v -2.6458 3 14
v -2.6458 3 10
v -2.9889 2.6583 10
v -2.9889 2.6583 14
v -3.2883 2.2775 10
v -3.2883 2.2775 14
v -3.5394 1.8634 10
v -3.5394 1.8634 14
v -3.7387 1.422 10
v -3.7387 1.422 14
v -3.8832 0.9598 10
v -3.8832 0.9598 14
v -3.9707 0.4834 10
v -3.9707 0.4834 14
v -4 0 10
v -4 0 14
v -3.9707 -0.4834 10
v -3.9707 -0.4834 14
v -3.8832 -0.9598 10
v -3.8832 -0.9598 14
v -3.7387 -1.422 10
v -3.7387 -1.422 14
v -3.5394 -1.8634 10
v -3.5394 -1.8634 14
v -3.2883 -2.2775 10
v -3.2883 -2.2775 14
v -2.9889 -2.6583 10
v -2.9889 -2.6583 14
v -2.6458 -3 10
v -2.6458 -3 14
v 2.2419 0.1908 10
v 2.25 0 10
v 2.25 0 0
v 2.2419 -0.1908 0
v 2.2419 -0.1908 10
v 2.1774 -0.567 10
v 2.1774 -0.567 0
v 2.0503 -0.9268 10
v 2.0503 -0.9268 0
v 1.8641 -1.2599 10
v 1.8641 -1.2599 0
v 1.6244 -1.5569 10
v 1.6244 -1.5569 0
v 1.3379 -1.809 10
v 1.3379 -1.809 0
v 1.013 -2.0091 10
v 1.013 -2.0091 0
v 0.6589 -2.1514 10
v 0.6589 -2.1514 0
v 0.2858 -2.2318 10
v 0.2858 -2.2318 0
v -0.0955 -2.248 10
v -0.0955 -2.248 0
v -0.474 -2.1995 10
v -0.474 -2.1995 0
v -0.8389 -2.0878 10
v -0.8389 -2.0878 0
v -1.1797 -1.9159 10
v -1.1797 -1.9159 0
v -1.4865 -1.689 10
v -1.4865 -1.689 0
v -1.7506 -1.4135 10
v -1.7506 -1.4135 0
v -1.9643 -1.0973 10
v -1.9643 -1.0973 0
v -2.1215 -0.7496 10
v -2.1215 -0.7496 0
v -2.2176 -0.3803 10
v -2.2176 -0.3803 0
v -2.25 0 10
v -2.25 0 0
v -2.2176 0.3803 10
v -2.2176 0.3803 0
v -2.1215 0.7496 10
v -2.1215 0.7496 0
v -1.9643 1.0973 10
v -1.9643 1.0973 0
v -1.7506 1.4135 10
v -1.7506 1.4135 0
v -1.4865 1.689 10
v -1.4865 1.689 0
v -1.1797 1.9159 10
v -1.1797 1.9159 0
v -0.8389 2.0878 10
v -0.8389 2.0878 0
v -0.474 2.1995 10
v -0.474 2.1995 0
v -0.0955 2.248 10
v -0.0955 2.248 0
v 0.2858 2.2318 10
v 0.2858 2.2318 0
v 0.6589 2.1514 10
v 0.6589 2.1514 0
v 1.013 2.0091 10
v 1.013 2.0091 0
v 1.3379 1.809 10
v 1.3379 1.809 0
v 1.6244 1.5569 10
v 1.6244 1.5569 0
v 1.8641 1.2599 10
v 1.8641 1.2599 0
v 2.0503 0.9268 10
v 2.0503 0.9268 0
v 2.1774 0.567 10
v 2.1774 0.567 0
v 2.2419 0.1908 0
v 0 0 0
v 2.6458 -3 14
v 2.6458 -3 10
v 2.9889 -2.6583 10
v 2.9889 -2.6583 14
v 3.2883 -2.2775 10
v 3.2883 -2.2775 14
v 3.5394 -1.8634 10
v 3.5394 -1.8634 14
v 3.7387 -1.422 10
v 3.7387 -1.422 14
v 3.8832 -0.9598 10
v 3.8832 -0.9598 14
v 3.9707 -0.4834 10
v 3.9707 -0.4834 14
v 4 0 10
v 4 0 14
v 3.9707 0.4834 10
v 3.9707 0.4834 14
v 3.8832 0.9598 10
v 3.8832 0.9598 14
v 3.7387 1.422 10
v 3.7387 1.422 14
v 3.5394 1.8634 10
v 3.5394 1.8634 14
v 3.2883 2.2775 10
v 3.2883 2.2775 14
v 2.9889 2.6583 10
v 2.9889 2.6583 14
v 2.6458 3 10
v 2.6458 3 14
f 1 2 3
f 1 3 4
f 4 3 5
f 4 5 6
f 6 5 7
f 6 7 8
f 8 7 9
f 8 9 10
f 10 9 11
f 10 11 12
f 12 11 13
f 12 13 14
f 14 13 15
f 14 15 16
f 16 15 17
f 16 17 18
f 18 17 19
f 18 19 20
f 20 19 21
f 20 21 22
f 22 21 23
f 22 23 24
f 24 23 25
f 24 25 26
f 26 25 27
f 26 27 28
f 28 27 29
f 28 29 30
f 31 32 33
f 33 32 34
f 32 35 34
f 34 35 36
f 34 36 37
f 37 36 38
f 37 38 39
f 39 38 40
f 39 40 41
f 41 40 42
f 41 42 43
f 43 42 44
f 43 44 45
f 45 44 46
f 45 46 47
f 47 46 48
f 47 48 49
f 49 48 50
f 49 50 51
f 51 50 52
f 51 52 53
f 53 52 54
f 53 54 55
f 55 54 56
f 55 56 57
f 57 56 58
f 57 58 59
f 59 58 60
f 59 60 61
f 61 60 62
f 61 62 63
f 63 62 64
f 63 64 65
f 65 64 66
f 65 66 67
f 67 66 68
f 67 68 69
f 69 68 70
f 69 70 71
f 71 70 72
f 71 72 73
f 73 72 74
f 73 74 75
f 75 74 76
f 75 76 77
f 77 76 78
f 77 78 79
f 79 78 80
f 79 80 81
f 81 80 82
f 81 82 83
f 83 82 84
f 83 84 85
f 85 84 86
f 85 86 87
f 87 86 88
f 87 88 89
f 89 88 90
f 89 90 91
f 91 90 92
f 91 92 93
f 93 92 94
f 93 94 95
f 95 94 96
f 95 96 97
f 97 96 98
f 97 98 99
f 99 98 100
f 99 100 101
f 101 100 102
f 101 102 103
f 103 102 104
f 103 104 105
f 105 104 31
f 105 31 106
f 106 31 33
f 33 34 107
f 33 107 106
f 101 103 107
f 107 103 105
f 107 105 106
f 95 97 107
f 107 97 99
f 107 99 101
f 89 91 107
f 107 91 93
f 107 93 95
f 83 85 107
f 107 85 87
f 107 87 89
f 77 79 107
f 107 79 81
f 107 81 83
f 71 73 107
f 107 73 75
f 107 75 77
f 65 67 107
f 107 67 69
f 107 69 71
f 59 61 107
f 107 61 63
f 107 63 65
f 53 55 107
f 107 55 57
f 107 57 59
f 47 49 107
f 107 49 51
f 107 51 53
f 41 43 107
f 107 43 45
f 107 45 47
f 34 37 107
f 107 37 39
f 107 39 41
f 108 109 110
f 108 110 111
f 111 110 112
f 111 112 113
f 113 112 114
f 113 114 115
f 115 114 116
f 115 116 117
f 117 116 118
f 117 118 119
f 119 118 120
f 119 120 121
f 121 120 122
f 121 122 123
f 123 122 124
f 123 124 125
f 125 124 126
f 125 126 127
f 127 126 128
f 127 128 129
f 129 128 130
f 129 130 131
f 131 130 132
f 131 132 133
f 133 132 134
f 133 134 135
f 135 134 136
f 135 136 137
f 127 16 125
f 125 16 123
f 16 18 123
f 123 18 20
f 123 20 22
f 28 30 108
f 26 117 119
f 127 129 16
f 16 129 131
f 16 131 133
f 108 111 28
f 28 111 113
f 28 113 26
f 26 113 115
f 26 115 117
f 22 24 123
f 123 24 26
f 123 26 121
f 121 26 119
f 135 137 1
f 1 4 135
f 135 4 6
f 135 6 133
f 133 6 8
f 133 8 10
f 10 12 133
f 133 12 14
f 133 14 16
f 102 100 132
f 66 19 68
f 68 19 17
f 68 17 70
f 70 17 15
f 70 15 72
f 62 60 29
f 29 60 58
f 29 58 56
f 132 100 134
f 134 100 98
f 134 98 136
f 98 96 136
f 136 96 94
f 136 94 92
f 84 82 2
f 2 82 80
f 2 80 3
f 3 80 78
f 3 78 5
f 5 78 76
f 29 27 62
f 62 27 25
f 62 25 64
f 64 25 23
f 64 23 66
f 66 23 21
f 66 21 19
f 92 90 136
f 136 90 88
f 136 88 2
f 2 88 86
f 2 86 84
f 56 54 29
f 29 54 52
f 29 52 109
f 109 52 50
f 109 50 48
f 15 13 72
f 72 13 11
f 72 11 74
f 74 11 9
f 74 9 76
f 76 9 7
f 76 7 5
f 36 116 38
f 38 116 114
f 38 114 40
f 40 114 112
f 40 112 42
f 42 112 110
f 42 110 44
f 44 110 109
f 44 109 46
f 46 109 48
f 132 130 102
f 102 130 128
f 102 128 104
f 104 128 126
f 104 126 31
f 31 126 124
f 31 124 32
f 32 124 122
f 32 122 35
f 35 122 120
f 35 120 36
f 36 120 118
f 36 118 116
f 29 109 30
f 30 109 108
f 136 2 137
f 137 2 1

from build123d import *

# Parameters (mm, degrees)
SKETCH1_R           = 2.25
BOSS_EXTRUDE1_DEPTH = 10
SKETCH2_R           = 4
BOSS_EXTRUDE2_DEPTH = 4
CUT_EXTRUDE1_START  = -4
CUT_EXTRUDE1_DEPTH  = 4


with BuildPart() as part:
    # Sketch1 → Boss-Extrude1 (new body)
    with BuildSketch(Plane.XY):
        Circle(SKETCH1_R)
    extrude(amount=BOSS_EXTRUDE1_DEPTH)

    # Sketch2 → Boss-Extrude2 (add)
    with BuildSketch(Plane.XY.offset(10)):
        Circle(SKETCH2_R)
    extrude(amount=BOSS_EXTRUDE2_DEPTH)

    # Sketch3 → Cut-Extrude1 (cut)
    with BuildSketch(Plane.XY.offset(14).offset(CUT_EXTRUDE1_START)):
        with BuildLine():
            Line((-2.645751311, 3), (2.645751311, 3))
            ThreePointArc((2.645751311, 3), (0, 4), (-2.645751311, 3))
        make_face()
        with BuildLine():
            Line((-2.645751311, -3), (2.645751311, -3))
            ThreePointArc((2.645751311, -3), (0, -4), (-2.645751311, -3))
        make_face()
    extrude(amount=CUT_EXTRUDE1_DEPTH, mode=Mode.SUBTRACT)


solid = part.part
